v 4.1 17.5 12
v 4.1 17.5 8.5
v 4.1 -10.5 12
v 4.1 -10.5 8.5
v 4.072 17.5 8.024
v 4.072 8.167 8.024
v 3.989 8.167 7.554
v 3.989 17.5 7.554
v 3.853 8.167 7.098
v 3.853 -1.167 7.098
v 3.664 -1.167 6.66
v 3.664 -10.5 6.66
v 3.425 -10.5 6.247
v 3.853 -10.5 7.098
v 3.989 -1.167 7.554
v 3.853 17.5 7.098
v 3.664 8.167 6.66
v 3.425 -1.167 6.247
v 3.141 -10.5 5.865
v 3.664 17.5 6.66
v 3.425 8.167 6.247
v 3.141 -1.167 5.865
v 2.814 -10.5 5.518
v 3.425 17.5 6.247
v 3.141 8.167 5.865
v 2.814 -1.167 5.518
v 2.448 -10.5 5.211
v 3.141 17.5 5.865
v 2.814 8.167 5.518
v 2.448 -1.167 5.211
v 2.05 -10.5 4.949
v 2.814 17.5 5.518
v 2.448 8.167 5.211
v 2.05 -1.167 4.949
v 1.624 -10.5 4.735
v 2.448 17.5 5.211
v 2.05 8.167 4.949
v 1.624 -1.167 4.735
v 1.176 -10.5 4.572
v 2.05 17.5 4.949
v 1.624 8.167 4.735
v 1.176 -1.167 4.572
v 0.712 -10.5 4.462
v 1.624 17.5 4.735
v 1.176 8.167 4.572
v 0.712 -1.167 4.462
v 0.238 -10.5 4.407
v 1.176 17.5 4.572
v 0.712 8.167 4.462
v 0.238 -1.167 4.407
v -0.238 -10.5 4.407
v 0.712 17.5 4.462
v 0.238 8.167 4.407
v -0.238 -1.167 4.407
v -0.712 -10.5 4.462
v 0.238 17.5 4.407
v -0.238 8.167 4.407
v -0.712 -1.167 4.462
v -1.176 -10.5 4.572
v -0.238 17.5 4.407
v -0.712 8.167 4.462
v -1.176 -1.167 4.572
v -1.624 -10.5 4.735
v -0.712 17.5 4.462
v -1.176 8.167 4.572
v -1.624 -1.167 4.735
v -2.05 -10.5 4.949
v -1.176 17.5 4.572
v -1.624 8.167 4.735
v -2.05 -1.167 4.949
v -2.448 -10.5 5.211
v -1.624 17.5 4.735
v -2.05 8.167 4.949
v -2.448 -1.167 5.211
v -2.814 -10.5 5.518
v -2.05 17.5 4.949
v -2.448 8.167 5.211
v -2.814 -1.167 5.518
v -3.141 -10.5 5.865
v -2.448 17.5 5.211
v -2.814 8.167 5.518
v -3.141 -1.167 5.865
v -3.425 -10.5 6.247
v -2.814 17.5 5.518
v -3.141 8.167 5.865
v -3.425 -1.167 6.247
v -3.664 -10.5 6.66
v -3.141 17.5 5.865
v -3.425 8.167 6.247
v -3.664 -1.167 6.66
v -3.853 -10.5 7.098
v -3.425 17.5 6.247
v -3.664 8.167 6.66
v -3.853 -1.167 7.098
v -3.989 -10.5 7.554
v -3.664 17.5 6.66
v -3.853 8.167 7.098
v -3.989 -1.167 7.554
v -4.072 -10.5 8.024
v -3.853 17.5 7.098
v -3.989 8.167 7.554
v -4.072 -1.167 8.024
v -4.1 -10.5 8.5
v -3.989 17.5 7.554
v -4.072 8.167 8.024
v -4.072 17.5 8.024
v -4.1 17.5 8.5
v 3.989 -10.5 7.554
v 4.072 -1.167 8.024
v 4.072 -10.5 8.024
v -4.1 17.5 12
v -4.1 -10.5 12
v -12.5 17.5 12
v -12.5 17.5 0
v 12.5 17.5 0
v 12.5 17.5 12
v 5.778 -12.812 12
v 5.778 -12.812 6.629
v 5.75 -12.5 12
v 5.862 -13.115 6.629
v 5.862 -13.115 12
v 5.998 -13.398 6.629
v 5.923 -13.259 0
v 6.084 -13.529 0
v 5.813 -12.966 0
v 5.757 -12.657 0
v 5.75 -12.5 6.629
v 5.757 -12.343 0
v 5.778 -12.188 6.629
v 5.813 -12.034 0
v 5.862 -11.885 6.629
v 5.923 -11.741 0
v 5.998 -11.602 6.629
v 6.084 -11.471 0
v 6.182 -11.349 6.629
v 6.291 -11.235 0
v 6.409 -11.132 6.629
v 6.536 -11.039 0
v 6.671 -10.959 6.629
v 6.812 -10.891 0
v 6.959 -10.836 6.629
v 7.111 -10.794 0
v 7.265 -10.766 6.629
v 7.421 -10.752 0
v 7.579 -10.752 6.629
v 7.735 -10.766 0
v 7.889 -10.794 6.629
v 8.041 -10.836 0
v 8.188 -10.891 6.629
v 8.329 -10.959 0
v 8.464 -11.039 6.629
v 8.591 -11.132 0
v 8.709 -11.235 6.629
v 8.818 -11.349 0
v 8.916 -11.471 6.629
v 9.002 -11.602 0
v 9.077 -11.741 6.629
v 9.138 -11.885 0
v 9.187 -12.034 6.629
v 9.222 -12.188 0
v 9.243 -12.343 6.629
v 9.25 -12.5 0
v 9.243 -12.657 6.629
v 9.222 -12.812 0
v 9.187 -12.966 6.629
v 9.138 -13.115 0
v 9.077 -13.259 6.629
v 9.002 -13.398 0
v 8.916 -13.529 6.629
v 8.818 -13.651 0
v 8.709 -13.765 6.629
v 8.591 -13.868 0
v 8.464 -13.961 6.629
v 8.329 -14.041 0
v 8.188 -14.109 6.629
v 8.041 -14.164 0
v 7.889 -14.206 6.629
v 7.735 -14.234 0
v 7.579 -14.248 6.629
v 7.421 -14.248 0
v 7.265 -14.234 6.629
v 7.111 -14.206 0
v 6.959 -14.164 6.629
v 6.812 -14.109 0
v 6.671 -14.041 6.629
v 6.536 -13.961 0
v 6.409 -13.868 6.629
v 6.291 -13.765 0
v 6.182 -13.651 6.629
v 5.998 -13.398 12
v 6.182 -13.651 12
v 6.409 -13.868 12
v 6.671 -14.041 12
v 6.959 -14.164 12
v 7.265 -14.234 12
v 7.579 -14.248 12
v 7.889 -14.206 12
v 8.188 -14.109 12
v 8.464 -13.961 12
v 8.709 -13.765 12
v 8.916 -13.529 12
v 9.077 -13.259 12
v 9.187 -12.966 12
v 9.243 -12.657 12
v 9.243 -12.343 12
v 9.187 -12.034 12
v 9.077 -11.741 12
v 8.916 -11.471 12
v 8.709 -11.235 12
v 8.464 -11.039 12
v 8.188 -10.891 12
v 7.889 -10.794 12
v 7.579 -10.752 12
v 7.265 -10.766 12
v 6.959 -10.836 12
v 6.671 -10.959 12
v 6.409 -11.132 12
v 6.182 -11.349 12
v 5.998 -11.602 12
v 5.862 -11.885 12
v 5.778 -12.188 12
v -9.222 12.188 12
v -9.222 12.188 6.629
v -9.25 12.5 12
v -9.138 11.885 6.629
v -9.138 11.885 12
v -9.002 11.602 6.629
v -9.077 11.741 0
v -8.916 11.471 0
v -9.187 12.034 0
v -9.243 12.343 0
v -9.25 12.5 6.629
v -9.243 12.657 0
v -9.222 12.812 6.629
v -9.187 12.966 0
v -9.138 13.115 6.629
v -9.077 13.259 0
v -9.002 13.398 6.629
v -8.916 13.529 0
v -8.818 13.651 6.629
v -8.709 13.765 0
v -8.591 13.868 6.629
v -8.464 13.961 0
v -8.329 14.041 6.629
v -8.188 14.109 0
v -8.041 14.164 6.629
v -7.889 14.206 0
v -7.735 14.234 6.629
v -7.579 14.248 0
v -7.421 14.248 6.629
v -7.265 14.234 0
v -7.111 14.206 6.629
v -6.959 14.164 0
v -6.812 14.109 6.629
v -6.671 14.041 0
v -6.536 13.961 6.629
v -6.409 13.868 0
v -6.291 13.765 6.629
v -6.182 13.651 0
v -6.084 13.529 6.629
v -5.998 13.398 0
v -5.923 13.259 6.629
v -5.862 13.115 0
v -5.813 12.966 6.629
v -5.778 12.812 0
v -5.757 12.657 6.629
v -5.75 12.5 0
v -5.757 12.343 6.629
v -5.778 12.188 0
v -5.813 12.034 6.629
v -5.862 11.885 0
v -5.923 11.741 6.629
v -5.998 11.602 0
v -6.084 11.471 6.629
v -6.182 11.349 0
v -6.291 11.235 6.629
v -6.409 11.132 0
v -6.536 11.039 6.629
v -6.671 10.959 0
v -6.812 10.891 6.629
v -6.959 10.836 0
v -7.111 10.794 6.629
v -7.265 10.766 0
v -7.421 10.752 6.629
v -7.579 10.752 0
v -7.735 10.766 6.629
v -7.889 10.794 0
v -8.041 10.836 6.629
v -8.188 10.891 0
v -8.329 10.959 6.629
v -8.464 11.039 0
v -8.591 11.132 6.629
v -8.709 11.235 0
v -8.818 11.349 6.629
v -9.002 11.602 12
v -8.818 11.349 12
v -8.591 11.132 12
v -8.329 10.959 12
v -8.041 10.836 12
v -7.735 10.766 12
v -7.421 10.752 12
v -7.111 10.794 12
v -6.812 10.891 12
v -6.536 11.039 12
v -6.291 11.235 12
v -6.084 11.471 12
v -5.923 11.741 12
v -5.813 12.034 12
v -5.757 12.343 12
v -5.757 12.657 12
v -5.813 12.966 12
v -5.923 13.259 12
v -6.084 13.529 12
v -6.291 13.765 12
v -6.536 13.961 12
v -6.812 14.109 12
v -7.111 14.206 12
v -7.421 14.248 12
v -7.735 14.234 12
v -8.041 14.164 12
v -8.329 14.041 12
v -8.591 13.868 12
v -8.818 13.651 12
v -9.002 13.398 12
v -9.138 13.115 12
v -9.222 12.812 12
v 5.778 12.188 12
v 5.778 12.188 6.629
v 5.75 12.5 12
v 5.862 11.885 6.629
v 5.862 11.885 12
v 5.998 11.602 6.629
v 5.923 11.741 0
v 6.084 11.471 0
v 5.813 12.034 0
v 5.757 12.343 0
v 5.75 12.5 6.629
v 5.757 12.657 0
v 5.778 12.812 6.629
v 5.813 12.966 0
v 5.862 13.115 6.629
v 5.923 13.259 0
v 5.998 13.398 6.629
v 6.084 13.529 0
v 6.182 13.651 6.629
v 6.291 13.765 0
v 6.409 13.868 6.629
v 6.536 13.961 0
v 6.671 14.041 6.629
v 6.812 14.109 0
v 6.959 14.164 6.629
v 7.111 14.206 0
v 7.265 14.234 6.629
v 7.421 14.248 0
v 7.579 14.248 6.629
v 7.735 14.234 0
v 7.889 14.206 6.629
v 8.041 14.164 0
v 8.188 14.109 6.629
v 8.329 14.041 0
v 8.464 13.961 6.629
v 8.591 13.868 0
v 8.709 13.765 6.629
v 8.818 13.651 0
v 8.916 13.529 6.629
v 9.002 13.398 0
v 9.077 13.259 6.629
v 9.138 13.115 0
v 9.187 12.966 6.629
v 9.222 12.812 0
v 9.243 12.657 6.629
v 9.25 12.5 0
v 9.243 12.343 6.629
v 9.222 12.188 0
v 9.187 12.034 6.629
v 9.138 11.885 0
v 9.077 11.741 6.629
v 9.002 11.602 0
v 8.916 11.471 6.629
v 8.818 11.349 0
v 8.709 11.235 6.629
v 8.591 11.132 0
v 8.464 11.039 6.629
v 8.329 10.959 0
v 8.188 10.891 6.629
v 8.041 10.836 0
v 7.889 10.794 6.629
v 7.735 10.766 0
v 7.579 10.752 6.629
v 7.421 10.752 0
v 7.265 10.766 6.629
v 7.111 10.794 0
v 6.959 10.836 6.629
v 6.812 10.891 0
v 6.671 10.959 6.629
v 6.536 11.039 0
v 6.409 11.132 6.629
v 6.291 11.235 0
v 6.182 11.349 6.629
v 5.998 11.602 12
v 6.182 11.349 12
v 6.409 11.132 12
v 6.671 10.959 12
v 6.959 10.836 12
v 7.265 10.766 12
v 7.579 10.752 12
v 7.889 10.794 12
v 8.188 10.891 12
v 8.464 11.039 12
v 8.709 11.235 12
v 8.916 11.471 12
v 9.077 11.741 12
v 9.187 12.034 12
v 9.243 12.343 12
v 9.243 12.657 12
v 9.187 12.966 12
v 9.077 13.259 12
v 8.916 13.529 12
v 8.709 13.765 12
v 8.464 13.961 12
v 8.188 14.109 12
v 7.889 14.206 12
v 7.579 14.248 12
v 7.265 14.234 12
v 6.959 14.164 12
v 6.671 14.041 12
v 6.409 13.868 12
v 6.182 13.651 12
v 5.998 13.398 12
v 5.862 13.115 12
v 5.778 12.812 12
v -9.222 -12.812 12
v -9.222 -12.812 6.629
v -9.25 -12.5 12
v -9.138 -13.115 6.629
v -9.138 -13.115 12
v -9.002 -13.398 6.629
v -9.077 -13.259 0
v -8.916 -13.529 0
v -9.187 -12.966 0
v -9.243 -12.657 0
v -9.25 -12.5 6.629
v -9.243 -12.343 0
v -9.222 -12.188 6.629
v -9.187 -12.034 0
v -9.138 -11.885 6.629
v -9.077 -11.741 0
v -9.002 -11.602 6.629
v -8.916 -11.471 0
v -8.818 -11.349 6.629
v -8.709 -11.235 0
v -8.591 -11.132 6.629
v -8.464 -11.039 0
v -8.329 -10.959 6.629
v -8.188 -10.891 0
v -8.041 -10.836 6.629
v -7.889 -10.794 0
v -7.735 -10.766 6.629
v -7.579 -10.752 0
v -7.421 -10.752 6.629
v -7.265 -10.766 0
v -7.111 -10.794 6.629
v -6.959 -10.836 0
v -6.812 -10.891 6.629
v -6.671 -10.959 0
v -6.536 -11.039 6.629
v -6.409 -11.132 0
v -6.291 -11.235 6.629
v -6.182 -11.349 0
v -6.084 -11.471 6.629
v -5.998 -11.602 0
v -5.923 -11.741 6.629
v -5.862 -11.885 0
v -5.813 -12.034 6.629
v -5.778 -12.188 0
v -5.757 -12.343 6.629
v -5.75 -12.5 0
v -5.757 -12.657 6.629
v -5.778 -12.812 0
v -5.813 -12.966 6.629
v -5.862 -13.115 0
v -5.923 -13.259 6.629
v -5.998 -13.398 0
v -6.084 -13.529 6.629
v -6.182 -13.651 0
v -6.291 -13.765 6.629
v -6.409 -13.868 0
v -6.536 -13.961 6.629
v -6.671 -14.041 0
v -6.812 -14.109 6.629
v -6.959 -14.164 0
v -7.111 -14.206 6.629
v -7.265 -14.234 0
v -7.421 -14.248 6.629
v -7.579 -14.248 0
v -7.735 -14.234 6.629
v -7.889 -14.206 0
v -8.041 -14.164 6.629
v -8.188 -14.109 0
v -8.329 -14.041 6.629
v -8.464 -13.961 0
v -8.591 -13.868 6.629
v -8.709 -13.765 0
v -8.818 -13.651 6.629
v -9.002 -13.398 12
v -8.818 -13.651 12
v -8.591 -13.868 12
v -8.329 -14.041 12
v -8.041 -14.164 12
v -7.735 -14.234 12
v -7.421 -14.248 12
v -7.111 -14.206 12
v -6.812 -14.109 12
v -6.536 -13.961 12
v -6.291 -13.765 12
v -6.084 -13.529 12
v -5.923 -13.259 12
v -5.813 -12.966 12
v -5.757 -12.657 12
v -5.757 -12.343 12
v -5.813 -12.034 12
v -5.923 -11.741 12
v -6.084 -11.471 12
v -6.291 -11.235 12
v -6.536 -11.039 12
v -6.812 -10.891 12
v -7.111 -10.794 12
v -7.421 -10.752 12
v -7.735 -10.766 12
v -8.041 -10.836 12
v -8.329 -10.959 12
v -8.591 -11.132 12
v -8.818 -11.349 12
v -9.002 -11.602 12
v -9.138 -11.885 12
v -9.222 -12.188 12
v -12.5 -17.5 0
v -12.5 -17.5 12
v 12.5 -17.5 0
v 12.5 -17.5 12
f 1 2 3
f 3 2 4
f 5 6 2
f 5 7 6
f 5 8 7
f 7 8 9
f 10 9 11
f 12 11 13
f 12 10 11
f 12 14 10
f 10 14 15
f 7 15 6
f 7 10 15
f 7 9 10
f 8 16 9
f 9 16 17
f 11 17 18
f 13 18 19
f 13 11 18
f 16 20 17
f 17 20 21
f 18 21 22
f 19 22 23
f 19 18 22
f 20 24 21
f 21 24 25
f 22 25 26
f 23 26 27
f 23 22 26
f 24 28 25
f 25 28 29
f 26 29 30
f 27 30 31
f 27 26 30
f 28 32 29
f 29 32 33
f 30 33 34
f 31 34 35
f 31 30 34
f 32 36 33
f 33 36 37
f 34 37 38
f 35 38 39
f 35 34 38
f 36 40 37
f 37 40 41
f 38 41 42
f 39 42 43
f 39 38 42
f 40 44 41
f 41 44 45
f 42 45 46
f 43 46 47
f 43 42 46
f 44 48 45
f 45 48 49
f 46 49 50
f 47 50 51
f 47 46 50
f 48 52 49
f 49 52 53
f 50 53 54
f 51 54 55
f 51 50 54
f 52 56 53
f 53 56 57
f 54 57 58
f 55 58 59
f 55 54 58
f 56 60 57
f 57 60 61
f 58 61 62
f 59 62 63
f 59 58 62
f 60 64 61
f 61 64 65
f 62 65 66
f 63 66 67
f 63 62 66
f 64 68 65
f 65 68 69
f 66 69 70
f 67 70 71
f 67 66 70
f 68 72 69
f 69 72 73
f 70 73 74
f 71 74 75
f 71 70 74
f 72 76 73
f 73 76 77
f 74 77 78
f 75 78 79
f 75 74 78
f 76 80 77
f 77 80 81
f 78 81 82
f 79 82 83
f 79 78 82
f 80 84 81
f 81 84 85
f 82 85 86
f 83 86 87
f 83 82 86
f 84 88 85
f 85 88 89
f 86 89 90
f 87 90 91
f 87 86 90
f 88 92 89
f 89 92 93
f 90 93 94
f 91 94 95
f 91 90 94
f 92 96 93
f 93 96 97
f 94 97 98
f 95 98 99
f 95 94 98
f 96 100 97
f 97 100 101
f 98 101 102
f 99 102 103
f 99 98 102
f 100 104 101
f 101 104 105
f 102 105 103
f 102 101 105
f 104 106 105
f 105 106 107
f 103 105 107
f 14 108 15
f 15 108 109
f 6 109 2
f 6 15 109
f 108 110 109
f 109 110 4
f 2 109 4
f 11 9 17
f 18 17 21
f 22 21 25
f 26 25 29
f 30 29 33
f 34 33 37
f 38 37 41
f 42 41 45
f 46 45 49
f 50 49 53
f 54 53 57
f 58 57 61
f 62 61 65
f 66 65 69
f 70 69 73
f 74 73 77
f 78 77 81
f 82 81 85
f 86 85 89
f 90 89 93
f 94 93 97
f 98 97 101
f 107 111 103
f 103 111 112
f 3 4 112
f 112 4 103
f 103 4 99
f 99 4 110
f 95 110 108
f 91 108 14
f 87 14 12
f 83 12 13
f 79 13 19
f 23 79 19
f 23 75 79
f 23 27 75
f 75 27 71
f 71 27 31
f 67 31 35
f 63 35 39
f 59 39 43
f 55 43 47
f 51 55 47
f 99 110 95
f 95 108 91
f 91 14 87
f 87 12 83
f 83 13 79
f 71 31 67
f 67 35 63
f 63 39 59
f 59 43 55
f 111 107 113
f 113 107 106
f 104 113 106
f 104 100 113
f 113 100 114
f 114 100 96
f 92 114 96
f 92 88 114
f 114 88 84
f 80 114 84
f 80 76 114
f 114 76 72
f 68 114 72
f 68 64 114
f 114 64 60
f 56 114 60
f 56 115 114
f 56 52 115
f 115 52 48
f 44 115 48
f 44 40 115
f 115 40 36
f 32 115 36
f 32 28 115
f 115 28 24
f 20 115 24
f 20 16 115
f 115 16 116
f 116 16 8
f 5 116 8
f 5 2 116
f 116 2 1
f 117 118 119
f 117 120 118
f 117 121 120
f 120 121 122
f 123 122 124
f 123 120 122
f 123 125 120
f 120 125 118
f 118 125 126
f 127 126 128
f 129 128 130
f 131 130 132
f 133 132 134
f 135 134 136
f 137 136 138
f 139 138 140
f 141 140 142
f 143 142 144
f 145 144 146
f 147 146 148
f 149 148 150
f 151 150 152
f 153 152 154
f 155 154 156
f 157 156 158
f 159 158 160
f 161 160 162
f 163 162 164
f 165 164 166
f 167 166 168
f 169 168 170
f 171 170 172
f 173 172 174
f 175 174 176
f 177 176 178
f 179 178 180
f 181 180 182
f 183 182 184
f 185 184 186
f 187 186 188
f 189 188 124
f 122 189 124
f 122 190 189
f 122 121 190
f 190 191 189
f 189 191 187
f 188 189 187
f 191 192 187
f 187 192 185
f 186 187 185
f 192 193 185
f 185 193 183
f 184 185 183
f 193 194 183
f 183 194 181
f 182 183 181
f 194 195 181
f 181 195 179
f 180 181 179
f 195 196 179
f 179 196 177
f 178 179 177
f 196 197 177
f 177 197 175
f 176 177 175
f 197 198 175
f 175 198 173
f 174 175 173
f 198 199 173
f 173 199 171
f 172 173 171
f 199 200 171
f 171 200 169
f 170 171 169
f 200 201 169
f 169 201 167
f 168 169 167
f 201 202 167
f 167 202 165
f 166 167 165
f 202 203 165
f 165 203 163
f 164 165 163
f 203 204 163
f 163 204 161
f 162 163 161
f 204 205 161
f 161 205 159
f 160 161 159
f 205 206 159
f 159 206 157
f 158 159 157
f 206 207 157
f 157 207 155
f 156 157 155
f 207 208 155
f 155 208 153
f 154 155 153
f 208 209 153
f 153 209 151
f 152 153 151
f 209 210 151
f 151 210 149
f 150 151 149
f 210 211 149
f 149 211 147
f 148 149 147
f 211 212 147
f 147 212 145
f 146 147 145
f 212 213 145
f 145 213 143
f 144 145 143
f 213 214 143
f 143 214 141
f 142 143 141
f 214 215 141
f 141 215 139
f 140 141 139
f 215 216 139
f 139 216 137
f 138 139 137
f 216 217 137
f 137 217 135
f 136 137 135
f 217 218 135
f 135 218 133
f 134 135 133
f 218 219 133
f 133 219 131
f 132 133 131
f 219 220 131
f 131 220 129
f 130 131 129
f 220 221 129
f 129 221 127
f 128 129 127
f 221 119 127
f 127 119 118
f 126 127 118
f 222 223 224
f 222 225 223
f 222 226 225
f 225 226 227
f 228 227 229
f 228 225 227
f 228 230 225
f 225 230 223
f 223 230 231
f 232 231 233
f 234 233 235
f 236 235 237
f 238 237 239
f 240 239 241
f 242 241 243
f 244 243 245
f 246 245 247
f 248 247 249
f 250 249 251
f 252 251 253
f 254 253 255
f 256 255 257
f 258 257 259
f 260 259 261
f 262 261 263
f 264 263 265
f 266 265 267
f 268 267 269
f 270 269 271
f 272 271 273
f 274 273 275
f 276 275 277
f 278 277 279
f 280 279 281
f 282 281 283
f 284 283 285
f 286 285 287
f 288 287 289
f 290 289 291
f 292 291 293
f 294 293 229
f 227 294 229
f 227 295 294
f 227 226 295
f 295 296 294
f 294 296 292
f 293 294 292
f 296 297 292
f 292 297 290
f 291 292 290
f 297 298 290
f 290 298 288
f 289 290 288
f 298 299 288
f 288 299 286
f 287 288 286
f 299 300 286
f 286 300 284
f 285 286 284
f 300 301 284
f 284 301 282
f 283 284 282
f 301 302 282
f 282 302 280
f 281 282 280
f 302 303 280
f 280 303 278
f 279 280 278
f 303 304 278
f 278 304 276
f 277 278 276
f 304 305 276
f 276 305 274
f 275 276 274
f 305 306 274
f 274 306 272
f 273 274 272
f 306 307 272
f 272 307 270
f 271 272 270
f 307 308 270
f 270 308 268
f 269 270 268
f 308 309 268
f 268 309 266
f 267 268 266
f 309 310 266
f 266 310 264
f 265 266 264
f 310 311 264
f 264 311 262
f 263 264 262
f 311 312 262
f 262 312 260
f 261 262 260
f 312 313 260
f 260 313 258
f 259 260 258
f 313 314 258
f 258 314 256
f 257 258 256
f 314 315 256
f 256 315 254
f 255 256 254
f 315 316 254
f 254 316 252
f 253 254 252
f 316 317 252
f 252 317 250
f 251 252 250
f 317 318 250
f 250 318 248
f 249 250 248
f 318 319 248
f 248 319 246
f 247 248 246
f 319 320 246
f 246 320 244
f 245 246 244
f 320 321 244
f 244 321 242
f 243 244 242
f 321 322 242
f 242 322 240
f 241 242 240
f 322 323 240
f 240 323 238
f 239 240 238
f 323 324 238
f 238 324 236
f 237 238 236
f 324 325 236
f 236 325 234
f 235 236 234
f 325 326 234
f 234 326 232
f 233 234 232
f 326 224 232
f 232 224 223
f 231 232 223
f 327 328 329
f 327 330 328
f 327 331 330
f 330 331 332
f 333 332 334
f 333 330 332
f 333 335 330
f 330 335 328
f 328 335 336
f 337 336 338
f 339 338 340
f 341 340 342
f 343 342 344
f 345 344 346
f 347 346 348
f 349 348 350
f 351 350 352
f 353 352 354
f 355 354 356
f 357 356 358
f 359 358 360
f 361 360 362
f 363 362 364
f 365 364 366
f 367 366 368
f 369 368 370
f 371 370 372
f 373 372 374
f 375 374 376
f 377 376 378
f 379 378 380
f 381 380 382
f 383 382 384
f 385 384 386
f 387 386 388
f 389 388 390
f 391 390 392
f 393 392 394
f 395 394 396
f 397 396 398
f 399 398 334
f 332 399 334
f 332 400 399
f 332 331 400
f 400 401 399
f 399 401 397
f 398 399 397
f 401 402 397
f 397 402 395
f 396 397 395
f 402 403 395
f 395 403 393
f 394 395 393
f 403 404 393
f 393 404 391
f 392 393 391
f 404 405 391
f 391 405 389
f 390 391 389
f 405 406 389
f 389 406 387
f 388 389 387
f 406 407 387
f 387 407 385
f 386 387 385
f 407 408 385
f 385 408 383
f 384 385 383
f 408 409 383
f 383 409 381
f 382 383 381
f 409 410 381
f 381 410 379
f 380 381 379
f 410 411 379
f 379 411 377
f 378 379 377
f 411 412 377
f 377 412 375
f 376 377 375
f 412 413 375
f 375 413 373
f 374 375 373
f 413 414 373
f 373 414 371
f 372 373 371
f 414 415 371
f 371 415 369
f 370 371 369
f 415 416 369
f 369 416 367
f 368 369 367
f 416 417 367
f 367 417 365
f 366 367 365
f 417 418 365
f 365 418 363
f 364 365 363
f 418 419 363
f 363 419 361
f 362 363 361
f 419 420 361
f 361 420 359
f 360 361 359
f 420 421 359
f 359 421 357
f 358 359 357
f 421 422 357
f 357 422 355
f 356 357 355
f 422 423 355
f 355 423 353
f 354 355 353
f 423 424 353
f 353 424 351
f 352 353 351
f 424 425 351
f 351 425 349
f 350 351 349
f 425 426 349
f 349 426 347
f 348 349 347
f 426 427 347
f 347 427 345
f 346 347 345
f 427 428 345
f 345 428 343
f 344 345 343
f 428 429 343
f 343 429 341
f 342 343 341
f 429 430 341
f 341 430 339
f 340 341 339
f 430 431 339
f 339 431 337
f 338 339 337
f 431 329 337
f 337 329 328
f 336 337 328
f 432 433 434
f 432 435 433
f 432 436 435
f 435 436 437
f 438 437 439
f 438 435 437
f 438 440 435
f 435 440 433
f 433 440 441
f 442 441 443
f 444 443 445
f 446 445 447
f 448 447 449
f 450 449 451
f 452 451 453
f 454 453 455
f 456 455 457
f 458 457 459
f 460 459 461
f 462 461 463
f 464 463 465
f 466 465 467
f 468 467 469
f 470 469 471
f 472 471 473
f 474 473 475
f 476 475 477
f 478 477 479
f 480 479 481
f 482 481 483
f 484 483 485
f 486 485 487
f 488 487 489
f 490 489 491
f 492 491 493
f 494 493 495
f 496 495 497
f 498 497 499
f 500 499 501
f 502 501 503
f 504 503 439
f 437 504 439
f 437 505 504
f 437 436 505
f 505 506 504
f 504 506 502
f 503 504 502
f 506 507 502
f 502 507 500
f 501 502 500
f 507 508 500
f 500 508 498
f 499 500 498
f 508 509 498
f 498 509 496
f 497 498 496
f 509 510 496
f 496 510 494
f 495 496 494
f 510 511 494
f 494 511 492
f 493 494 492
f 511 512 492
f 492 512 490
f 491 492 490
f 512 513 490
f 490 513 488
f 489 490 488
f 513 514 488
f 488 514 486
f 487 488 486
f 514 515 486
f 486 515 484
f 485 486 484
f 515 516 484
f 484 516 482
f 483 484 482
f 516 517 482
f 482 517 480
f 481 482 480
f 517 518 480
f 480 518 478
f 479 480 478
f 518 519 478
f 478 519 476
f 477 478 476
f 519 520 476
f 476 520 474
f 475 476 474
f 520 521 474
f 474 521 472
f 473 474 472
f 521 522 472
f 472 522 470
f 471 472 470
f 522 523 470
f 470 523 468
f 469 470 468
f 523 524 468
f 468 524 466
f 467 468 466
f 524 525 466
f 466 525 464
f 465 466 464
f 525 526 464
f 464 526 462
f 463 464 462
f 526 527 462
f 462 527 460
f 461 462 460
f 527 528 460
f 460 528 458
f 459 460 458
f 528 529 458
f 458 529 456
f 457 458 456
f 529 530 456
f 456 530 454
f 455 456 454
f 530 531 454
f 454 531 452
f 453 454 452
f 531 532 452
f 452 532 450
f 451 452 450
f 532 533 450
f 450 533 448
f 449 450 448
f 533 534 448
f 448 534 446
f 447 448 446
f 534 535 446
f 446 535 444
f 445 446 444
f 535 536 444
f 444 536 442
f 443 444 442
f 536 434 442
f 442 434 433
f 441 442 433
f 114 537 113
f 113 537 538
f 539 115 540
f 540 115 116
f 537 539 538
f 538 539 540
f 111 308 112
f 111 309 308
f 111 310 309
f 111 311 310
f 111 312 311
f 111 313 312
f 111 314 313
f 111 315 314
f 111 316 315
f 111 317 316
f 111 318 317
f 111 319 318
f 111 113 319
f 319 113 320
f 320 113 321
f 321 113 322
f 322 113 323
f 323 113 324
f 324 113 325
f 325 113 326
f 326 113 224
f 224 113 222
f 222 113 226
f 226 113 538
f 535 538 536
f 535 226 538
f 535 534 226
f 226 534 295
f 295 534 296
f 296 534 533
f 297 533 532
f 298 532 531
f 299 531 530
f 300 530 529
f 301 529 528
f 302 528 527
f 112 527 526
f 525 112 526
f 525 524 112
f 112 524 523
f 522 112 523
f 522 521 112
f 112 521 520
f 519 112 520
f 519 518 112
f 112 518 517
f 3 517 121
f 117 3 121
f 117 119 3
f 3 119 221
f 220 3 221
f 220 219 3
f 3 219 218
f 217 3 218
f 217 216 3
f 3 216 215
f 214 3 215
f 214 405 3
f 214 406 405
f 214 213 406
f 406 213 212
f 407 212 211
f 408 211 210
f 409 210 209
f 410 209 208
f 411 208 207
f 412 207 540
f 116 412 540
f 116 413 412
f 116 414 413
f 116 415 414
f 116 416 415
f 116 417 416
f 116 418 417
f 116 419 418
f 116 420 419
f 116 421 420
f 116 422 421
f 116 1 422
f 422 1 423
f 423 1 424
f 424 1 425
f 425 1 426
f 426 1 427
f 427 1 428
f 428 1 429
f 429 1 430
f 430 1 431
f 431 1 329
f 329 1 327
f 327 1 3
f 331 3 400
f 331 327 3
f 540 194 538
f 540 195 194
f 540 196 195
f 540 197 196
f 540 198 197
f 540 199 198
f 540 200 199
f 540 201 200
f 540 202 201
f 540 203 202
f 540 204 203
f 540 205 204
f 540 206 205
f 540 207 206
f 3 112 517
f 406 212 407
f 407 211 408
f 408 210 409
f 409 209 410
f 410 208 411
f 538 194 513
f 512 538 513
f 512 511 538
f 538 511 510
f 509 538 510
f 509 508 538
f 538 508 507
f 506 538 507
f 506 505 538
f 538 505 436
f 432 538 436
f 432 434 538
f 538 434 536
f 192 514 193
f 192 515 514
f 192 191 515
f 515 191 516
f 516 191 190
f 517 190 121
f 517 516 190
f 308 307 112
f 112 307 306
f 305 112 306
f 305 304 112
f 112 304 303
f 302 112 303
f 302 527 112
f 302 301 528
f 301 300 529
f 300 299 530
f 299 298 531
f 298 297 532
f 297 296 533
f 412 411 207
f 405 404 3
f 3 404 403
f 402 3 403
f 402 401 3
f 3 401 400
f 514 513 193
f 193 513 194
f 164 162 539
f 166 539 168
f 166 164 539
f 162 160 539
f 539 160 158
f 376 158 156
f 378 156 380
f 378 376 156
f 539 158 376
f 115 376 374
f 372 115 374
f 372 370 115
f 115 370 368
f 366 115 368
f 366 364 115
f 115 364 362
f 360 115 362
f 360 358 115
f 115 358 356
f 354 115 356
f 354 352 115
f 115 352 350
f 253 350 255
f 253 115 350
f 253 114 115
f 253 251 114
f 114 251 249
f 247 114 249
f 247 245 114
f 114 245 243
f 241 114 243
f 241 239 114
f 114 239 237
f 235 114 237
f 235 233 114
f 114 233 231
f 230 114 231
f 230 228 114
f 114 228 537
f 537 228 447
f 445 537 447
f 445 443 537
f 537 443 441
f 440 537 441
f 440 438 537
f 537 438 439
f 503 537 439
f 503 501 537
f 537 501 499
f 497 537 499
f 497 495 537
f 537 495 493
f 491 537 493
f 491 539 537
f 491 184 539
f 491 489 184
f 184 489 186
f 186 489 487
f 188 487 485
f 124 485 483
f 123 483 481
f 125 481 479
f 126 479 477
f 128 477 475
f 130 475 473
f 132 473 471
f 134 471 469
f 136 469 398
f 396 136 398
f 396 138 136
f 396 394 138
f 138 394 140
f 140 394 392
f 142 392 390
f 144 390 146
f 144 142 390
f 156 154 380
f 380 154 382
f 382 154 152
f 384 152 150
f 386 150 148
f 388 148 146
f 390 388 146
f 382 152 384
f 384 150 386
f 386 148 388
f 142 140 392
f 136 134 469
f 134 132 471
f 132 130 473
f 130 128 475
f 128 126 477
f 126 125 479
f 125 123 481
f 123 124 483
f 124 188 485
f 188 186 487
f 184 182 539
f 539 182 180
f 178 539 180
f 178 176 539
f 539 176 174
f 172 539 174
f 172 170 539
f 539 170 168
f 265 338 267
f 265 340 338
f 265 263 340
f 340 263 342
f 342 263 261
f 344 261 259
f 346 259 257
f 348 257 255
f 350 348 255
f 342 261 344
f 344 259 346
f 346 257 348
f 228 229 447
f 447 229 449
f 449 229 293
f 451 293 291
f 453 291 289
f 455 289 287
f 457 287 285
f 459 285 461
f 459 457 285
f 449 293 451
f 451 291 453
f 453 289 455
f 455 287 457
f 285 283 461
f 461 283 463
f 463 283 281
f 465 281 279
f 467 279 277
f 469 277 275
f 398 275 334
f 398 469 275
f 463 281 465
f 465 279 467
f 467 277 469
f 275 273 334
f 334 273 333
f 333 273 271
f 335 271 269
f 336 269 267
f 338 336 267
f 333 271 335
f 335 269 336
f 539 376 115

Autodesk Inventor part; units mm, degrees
ref_plane "YZ Plane" through (0, 0, 0) normal (1, 0, 0) x (0, 1, 0)
ref_plane "XZ Plane" through (0, 0, 0) normal (0, 1, 0) x (-1, 0, 0)
ref_plane "XY Plane" through (0, 0, 0) normal (0, 0, 1) x (1, 0, 0)
sketch "Szkic1" plane through (0, 0, 0) normal (0, 0, 1) x (1, 0, 0)
  line L0 (-12.5, -17.5) -> (12.5, -17.5)
  line L1 (12.5, -17.5) -> (12.5, 17.5)
  line L2 (12.5, 17.5) -> (-12.5, 17.5)
  line L3 (-12.5, 17.5) -> (-12.5, -17.5)
  line L4 (-12.5, -17.5) -> (12.5, 17.5) construction
  line L5 (12.5, -17.5) -> (-12.5, 17.5) construction
  line L6 (7.5, -12.5) -> (-7.5, -12.5) construction
  line L7 (-7.5, -12.5) -> (-7.5, 12.5) construction
  line L8 (-7.5, 12.5) -> (7.5, 12.5) construction
  line L9 (7.5, 12.5) -> (7.5, -12.5) construction
  line L10 (7.5, -12.5) -> (-7.5, 12.5) construction
  line L11 (-7.5, -12.5) -> (7.5, 12.5) construction
  point P0 (0, 0)
  dimension "d0" = 25
  dimension "d1" = 35
  dimension "d2" = 15
  dimension "d3" = 25
extrude "Wyciągnięcie proste1" add sketch "Szkic1" along normal blind 12
hole "Otwór1" at (-7.5, 12.5, 0) at (7.5, 12.5, 0) at (7.5, -12.5, 0) at (-7.5, -12.5, 0) direction (0, 0, 1) diameter 3.5 end through all
sketch "Szkic2" plane through (-12.5, 17.5, 0) normal (0, 1, 0) x (1, 0, 0)
  line L0 (25, -12) -> (0, -12) projected
  line L1 (12.5, 0) -> (12.5, -12) construction
  line L2 (8.4, -12) -> (8.4, -8.5)
  arc A0 (16.6, -8.5) -> (8.4, -8.5) centre (12.5, -8.5) ccw
  line L3 (16.6, -8.5) -> (16.6, -12)
  dimension "d13" = 4.1
  dimension "d15" = 3.5
extrude "Wyciągnięcie proste2" cut sketch "Szkic2" against normal blind 28
properties part number "roll_mount2"
